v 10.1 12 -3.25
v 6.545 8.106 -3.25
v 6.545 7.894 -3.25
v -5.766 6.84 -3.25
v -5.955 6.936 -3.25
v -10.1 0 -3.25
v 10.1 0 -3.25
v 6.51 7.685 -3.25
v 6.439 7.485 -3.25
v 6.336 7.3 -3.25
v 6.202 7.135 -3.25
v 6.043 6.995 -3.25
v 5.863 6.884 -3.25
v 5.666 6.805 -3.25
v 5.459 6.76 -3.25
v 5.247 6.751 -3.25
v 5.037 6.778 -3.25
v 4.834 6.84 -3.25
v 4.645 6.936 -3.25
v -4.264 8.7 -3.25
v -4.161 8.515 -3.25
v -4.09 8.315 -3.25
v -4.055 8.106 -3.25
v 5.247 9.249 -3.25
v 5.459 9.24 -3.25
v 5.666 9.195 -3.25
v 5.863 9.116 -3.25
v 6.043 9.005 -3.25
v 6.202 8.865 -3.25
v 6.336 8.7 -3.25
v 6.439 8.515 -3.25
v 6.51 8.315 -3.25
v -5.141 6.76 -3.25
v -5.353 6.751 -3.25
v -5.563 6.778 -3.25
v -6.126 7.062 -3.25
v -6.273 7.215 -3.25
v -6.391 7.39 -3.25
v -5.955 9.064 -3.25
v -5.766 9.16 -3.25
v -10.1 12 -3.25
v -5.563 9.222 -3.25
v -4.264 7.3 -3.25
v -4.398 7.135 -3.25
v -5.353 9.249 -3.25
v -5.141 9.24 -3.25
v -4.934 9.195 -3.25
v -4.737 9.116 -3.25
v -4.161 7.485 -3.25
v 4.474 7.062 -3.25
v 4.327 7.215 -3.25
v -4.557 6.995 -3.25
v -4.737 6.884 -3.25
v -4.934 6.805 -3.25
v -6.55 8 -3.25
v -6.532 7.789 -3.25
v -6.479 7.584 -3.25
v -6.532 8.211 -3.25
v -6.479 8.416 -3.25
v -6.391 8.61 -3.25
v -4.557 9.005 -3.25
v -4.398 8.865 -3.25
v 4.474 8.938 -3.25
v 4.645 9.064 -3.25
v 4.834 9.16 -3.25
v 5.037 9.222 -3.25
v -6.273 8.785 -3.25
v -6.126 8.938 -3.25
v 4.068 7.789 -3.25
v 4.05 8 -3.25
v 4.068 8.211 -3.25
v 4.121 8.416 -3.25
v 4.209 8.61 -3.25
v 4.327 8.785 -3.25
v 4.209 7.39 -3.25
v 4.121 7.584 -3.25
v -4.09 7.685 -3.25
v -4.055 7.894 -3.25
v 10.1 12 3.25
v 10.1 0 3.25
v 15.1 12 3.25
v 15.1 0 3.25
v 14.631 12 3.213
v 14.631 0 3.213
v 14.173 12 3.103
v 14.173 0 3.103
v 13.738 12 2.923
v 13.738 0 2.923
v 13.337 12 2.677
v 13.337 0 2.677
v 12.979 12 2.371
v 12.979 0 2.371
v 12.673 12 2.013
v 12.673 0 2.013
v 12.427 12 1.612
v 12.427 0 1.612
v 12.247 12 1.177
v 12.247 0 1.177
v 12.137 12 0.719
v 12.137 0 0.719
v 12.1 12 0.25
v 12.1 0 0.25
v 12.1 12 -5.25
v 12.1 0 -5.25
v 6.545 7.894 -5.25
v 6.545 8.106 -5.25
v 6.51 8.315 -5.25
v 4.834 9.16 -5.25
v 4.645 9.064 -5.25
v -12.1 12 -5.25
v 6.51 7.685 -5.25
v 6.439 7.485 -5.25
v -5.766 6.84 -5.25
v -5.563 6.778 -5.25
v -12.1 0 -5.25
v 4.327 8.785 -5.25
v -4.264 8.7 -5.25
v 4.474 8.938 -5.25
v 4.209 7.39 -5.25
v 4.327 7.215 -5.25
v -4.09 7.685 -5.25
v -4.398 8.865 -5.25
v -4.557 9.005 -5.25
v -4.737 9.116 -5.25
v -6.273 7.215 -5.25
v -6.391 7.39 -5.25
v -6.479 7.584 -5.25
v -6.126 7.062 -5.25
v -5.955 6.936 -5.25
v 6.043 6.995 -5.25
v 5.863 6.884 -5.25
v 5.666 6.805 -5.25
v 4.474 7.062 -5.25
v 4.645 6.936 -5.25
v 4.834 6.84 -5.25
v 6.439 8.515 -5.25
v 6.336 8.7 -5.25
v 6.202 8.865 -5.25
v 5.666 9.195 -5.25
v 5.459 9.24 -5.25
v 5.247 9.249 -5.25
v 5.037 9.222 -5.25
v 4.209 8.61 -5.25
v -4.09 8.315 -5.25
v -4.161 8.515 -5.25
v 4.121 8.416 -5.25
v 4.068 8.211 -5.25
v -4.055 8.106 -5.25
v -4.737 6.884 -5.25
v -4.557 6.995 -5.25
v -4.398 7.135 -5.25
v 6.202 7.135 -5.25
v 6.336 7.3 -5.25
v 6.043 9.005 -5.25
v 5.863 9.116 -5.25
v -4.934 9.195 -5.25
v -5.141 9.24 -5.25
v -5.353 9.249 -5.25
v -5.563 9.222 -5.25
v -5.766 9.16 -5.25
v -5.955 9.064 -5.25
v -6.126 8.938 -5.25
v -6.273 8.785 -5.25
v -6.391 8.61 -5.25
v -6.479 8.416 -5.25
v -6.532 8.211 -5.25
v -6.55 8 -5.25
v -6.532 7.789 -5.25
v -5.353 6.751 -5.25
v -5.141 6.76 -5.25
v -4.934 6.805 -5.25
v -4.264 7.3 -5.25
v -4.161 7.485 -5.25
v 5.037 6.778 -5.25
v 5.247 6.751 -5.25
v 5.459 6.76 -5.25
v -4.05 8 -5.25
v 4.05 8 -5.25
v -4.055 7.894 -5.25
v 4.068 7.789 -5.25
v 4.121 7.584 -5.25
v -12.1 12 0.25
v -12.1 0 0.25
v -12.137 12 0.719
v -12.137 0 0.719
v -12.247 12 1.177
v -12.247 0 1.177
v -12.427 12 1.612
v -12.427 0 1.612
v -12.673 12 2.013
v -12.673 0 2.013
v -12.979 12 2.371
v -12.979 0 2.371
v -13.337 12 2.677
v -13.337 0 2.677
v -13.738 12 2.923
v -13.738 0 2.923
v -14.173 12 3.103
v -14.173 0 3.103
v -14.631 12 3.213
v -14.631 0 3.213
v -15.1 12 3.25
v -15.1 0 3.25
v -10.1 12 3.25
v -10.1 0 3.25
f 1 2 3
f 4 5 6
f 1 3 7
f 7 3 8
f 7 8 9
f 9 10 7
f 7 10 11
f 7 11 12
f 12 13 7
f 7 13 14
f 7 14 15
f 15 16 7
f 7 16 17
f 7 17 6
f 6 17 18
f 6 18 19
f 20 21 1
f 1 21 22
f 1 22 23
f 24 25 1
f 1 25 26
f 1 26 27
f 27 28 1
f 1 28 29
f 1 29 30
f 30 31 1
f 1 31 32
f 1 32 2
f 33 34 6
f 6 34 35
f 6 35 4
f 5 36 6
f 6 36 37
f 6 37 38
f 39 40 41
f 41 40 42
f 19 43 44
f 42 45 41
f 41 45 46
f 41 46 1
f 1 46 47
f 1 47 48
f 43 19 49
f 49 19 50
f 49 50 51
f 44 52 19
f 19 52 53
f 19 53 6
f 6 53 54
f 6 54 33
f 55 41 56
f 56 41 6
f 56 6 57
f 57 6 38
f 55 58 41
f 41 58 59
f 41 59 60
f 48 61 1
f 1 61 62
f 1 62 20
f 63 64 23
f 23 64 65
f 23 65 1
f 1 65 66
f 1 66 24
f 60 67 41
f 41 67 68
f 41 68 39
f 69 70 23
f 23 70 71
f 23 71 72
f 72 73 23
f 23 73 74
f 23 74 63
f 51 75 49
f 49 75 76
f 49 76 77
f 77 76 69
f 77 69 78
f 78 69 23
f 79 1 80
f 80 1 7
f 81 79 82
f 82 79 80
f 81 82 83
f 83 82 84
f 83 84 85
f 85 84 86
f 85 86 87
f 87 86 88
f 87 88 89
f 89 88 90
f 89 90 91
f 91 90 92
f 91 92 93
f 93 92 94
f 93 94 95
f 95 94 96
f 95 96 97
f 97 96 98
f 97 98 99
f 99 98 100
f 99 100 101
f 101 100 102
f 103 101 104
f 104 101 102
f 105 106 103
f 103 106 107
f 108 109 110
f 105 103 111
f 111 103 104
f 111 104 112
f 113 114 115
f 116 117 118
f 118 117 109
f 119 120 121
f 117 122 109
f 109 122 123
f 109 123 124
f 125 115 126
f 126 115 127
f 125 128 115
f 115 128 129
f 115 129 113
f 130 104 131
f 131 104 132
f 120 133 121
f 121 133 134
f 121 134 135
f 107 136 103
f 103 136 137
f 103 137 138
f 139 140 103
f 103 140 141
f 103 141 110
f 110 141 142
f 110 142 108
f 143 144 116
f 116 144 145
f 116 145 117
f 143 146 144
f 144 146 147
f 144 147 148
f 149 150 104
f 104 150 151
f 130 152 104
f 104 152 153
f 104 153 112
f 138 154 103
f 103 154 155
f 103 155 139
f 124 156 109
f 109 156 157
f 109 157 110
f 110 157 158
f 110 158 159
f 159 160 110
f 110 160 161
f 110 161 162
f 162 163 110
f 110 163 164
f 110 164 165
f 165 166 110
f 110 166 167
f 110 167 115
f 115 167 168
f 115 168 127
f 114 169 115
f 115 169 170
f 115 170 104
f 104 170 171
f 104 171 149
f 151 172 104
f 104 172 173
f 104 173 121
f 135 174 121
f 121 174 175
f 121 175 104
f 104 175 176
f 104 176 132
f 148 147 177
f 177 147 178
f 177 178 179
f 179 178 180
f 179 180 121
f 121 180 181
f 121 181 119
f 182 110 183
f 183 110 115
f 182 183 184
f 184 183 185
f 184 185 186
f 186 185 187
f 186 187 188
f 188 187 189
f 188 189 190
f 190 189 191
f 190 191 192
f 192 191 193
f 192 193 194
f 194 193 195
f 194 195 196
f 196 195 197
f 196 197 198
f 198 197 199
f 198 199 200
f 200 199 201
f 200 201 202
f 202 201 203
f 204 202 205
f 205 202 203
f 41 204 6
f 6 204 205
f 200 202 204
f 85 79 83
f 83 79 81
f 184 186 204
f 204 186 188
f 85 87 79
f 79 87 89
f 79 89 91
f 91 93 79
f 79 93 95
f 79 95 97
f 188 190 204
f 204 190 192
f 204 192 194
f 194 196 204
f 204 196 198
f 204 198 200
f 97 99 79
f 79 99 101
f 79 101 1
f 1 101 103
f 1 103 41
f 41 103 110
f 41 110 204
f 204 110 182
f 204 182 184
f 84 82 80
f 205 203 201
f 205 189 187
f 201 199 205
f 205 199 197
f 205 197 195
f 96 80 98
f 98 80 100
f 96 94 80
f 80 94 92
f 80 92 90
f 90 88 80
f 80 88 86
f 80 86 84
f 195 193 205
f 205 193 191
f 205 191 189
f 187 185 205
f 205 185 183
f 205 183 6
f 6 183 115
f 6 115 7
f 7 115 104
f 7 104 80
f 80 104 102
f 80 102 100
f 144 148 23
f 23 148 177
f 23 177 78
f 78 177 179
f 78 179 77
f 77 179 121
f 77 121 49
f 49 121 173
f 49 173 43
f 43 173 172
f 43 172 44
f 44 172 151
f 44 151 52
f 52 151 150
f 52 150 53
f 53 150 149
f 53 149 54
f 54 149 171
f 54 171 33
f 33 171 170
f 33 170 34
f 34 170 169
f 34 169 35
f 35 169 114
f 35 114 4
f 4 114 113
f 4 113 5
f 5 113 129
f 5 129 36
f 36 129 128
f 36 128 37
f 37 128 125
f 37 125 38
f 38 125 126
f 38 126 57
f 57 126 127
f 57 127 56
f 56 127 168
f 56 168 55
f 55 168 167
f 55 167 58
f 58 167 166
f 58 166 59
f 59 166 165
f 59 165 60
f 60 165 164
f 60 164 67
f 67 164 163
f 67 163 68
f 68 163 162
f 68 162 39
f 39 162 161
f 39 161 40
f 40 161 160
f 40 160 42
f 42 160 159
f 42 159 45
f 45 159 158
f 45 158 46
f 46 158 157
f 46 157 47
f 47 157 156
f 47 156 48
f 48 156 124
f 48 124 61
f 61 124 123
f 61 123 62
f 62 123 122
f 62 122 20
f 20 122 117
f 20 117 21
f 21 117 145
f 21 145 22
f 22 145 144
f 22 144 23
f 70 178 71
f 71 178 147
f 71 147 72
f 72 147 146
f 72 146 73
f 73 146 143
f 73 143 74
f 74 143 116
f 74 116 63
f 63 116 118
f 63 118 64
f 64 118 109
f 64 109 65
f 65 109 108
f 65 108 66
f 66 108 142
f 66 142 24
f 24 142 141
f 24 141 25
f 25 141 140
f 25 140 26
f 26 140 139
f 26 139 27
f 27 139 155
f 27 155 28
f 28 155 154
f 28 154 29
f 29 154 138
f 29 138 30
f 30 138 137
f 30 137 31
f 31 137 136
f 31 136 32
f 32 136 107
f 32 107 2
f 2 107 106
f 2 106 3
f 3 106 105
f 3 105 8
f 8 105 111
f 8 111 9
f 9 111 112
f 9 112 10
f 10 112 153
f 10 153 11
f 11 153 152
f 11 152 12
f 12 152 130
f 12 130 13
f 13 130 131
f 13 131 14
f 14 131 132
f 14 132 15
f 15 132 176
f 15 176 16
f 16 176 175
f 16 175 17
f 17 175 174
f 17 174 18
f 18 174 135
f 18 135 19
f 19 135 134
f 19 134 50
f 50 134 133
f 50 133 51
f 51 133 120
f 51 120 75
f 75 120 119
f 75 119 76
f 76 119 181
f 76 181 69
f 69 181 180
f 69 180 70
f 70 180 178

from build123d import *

# Parameters (mm, degrees)
BOSS_EXTRU_1_DEPTH      = 12
ENL_V_MAT_EXTRU_1_REACH = 23.077
ESQUISSE3_R             = 1.25


with BuildPart() as part:
    # Esquisse1 → Boss.-Extru.1 (new body)
    with BuildSketch(Plane(origin=(0, 0, 0), x_dir=(1, 0, 0), z_dir=(0, 1, 0))):
        with BuildLine():
            Line((-10.1, 3.25), (-10.1, -3.25))
            Line((-10.1, -3.25), (-12.1, -3.25))
            Line((-12.1, -3.25), (-15.1, -3.25))
            ThreePointArc((-15.1, -3.25), (-12.978679656, -2.371320344), (-12.1, -0.25))
            Line((-12.1, -0.25), (-12.1, 5.25))
            Line((-12.1, 5.25), (12.1, 5.25))
            Line((12.1, 5.25), (12.1, -0.25))
            ThreePointArc((12.1, -0.25), (12.978679656, -2.371320344), (15.1, -3.25))
            Line((15.1, -3.25), (12.1, -3.25))
            Line((12.1, -3.25), (10.1, -3.25))
            Line((10.1, -3.25), (10.1, 3.25))
            Line((10.1, 3.25), (-10.1, 3.25))
        make_face()
    extrude(amount=BOSS_EXTRU_1_DEPTH)

    # Esquisse3 → Enlèv. mat.-Extru.1 (cut, up to next)
    with BuildSketch(Plane(origin=(0, 0, -5.25), x_dir=(-1, 0, 0), z_dir=(0, 0, -1)), mode=Mode.PRIVATE) as enl_v_mat_extru_1_sk1:
        with Locations((-5.3, 8)):
            Circle(ESQUISSE3_R)
    enl_v_mat_extru_1_tool1 = extrude(enl_v_mat_extru_1_sk1.sketch, amount=-ENL_V_MAT_EXTRU_1_REACH, mode=Mode.PRIVATE) & part.part
    # Esquisse3 → Enlèv. mat.-Extru.1 (cut, up to next)
    with BuildSketch(Plane(origin=(0, 0, -5.25), x_dir=(-1, 0, 0), z_dir=(0, 0, -1)), mode=Mode.PRIVATE) as enl_v_mat_extru_1_sk2:
        with Locations((5.3, 8)):
            Circle(ESQUISSE3_R)
    enl_v_mat_extru_1_tool2 = extrude(enl_v_mat_extru_1_sk2.sketch, amount=-ENL_V_MAT_EXTRU_1_REACH, mode=Mode.PRIVATE) & part.part
    add(enl_v_mat_extru_1_tool1.solids().sort_by_distance((5.3, 8, -5.25))[0], mode=Mode.SUBTRACT)
    add(enl_v_mat_extru_1_tool2.solids().sort_by_distance((-5.3, 8, -5.25))[0], mode=Mode.SUBTRACT)


solid = part.part
